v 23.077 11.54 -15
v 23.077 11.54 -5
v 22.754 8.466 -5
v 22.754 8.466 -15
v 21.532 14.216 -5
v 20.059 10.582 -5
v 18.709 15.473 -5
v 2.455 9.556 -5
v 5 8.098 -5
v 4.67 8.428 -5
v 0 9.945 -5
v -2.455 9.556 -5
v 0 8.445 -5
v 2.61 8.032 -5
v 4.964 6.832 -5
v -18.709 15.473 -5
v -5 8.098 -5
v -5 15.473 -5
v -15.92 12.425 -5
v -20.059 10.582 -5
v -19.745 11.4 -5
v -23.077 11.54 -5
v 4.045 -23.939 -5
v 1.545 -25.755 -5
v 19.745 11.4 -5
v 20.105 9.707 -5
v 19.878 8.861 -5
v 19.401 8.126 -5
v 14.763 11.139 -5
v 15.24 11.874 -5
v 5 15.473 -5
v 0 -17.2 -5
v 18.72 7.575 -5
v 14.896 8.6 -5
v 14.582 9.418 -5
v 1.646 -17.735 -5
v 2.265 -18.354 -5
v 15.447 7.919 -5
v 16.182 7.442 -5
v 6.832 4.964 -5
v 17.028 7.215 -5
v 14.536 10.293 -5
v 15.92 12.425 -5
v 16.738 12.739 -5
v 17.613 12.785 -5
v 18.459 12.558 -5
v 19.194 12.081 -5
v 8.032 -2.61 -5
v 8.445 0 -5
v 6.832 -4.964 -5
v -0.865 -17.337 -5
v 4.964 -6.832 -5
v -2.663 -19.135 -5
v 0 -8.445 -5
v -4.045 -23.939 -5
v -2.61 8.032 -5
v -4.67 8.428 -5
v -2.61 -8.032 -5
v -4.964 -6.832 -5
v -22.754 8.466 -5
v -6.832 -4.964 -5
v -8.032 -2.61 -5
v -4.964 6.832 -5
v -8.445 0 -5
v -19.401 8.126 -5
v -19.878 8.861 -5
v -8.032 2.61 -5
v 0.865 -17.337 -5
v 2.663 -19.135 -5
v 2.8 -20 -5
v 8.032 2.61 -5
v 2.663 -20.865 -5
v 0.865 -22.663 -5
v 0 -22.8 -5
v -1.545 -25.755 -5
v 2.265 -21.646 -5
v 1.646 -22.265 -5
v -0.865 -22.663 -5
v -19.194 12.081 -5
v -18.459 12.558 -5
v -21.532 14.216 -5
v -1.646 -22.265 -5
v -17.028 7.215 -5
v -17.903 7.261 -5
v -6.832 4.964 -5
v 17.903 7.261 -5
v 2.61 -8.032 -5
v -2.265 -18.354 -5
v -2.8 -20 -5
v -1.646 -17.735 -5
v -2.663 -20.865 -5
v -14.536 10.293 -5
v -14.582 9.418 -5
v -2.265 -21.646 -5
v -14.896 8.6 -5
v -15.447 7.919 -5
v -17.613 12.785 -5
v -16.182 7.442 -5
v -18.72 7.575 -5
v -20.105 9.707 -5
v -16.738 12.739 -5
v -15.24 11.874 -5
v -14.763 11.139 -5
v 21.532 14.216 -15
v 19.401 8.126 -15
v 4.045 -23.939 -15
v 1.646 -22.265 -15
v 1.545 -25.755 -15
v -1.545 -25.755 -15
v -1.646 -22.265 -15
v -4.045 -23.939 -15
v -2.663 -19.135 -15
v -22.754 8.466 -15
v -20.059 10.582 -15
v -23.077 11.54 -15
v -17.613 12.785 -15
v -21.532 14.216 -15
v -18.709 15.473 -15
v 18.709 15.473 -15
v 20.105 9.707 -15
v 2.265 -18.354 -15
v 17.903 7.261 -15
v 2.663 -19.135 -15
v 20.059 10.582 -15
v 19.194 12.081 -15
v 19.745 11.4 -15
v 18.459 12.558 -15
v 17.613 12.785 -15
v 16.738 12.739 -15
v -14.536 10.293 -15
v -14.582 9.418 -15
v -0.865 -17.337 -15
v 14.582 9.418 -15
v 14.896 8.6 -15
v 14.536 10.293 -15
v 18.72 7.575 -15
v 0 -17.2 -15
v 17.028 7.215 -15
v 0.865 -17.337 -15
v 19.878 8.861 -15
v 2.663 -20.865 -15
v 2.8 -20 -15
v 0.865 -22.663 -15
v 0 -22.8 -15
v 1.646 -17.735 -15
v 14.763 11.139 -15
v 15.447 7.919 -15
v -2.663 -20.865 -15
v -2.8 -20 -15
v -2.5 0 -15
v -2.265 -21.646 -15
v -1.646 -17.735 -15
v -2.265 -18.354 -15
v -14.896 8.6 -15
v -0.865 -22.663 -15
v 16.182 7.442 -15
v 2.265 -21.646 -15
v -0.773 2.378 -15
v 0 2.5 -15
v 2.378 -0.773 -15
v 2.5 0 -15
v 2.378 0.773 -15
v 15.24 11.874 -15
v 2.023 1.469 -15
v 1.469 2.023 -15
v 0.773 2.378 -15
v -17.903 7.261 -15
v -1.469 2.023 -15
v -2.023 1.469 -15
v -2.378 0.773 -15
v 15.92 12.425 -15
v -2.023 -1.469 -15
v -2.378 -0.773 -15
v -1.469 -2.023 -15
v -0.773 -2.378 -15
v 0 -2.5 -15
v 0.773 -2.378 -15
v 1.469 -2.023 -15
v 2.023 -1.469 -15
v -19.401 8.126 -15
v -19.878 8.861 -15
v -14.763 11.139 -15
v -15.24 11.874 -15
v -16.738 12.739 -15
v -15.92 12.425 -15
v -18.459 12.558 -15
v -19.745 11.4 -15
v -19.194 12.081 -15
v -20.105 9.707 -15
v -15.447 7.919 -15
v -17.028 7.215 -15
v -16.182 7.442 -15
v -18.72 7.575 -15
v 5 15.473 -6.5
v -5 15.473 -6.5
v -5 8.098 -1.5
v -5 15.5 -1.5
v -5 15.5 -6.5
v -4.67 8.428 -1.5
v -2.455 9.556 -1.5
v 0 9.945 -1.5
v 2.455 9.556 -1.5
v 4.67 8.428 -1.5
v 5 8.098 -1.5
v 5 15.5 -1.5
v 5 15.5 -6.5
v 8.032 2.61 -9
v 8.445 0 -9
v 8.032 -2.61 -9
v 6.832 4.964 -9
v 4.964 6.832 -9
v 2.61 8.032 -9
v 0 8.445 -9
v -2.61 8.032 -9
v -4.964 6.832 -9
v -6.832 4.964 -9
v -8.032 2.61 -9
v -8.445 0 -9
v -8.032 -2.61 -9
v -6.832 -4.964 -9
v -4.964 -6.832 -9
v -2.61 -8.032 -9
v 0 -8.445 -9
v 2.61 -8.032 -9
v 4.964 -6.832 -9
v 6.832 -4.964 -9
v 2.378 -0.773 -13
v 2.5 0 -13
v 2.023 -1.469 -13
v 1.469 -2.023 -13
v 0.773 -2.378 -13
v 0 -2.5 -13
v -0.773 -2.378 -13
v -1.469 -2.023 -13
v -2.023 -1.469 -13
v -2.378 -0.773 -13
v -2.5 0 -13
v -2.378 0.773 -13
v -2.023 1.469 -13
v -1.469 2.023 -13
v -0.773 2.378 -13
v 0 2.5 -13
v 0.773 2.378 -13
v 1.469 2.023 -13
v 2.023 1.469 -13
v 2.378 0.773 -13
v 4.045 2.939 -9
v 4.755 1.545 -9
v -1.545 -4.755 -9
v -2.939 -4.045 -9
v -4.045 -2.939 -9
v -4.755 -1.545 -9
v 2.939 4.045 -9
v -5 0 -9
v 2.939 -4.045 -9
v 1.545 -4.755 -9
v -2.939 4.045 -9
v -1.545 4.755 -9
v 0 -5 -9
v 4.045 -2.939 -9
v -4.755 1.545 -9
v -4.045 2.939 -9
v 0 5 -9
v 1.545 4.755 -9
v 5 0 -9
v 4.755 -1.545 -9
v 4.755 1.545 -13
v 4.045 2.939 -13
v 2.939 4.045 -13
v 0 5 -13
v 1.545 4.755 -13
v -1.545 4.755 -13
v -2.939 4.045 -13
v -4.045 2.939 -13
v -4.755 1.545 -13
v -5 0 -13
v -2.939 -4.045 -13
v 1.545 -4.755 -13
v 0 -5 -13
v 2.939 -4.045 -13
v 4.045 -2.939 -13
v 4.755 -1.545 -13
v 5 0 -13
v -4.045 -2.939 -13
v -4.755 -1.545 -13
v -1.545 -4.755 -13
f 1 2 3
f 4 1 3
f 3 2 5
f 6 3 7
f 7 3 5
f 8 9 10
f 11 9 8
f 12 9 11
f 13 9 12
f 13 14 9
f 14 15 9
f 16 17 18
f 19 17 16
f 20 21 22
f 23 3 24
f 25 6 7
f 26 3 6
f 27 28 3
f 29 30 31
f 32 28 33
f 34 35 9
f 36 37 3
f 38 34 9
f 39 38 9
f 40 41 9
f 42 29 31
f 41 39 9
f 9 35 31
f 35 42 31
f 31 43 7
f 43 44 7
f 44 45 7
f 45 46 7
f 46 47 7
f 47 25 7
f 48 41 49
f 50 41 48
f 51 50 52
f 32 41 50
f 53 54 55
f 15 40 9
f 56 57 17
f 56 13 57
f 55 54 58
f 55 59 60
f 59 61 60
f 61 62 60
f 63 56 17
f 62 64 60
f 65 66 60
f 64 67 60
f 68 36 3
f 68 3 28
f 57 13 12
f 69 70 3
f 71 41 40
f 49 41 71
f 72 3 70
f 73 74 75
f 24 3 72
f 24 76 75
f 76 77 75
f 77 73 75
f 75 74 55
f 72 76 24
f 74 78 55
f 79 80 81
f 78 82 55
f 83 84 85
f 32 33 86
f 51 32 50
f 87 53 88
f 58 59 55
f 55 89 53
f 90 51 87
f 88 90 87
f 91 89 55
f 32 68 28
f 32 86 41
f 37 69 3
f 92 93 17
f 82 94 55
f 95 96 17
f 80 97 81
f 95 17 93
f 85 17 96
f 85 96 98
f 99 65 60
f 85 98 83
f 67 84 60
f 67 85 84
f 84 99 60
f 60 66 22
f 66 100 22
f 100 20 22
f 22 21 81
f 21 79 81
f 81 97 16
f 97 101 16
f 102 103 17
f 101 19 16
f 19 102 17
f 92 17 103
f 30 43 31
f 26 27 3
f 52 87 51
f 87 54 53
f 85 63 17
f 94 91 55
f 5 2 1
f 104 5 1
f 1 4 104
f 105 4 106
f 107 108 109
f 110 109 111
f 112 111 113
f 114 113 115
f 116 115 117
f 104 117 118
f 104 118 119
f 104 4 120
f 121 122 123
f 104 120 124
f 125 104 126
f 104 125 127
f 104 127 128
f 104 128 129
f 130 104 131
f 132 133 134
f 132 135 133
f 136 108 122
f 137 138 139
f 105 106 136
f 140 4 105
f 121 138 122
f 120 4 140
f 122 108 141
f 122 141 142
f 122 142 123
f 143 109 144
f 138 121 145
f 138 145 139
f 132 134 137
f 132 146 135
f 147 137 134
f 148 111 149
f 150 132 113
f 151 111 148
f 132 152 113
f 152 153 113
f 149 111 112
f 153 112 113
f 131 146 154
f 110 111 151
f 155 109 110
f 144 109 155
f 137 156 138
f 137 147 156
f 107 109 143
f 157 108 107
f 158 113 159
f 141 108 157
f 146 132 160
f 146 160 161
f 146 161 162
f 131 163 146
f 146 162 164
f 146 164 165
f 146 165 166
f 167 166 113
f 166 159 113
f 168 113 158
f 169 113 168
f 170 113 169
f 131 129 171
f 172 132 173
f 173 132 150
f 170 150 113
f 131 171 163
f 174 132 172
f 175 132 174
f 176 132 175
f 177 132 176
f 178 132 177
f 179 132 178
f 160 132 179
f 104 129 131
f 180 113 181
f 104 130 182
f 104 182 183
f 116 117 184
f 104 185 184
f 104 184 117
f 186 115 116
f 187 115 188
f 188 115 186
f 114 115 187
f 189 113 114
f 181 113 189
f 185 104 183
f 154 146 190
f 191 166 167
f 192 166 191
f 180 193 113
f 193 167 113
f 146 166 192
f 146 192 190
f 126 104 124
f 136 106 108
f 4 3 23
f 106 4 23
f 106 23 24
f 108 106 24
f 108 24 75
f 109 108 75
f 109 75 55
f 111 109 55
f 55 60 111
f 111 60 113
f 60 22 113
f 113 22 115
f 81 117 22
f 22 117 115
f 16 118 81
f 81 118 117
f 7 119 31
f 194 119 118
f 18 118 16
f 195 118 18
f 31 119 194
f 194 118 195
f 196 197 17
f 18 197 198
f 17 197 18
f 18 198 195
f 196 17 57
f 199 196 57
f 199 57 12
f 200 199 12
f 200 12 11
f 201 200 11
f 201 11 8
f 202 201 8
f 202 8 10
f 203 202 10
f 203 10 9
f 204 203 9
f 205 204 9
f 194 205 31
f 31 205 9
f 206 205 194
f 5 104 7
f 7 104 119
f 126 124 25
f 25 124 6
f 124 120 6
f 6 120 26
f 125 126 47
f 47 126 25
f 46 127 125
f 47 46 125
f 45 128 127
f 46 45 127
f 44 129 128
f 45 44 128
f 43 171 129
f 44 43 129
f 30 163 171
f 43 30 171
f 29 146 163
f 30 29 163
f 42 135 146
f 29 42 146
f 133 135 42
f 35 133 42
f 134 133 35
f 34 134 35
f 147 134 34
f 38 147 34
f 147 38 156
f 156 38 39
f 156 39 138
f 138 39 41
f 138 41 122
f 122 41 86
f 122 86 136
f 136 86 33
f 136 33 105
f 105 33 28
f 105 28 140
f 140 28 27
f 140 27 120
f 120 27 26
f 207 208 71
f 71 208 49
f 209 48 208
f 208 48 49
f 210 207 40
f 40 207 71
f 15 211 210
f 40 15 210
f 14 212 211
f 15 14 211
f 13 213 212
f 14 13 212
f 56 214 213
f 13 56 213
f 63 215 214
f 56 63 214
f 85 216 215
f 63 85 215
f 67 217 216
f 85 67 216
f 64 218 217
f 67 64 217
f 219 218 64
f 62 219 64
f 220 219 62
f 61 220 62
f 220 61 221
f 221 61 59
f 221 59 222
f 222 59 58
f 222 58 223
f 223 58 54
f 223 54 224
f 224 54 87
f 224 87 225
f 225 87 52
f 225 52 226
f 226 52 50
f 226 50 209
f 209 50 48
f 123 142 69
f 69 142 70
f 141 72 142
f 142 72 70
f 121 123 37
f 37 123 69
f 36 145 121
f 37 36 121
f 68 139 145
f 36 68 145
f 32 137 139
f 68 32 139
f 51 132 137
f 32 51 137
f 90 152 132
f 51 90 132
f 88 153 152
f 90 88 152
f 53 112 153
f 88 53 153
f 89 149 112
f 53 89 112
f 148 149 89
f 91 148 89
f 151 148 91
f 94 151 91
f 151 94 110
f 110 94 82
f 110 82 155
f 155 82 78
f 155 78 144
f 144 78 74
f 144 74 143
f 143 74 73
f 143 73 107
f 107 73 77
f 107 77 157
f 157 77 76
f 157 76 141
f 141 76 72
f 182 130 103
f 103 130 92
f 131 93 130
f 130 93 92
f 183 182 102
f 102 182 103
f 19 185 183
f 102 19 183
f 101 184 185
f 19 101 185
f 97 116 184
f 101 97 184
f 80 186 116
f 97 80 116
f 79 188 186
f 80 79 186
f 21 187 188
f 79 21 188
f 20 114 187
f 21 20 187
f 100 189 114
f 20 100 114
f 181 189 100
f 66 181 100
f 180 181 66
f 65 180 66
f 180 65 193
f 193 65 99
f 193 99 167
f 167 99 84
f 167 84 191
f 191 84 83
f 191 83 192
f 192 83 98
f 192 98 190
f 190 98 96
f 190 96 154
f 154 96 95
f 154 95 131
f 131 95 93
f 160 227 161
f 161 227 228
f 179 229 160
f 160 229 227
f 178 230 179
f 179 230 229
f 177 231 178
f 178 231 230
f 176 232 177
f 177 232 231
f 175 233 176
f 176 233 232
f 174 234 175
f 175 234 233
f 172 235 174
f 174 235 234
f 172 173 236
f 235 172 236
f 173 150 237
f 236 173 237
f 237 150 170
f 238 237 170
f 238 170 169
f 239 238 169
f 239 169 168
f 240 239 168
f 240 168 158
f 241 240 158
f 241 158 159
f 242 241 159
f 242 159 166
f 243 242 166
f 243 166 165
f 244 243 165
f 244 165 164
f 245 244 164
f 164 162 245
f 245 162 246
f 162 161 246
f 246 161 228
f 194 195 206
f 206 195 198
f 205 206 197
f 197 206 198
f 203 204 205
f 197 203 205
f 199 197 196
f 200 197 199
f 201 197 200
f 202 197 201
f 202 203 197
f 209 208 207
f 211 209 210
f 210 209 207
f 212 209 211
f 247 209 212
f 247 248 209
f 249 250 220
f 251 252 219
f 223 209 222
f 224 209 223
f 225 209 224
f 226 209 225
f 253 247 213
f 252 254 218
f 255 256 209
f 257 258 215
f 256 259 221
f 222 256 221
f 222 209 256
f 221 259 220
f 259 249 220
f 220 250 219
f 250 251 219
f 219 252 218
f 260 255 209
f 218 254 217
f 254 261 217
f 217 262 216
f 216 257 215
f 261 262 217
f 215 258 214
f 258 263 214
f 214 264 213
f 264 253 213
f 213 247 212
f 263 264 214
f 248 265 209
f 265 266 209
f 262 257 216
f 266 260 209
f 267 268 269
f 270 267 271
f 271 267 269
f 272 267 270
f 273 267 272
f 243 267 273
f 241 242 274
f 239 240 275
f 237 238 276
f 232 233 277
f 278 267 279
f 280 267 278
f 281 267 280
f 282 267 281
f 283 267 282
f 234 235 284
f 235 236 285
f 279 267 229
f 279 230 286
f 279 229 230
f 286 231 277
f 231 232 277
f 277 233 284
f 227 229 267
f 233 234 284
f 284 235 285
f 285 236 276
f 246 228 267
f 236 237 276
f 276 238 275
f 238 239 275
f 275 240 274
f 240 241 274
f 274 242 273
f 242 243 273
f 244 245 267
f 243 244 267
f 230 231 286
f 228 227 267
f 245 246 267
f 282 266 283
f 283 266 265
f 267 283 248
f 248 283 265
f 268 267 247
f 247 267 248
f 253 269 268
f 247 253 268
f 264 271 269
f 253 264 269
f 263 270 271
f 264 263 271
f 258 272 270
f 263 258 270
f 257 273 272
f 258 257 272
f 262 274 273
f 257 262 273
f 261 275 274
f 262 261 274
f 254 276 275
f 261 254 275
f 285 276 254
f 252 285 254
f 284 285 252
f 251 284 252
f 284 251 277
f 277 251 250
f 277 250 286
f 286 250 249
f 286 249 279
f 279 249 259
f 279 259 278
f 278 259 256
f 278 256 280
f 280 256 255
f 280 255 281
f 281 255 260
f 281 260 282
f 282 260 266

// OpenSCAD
// file: jaws.scad
include<configuration.scad>;

thickness = 6;
gap = 10;

h = (thickness+gap)/2;
r = h/2 / cos(30);




module jaws() {
  difference() {
    union() {
      intersection () {
        rotate([90, 0, 0]) cylinder(r=5, h=gap+thickness, center=true, $fn=24);
        translate([-4, 0, 0]) cube([10, gap+thickness, h], center=true);
      }
      intersection() {
        translate([10, 0, 0]) cube([26, gap+thickness, h], center=true);
        translate([10, 0, 0]) rotate([0, 90, 0]) rotate([0, 0, 30]) cylinder(r1=gap, r2=r, h=26, center=true, $fn=6);
      }
	
    }
	
	//Makin it look nice
    translate([-1.5, 0, 0]) cube([10, gap, 10], center=true);
    translate([3.5, 0, 0]) rotate([0, 0, 30]) cylinder(r=gap/2, h=10, center=true, $fn=6);
    translate([4, 0, 4]) rotate([0, 45, 0]) rotate([0, 0, 30]) cylinder(r=4.2, h=8, center=true, $fn=6);
    translate([4, 0, -4]) rotate([0, -45, 0]) rotate([0, 0, 30]) cylinder(r=4.2, h=8, center=true, $fn=6);

	//M3 Holes
    rotate([90, 0, 0]) cylinder(r=M3h/2, h=40, center=true, $fn=12);



  }
}

module jaws_full(){
translate([-50, 0, 0]) jaws();
translate([50,0,0]) mirror([1,0,0]) jaws();
translate([0, 0, 0]) rotate([90, 0, 90]) cylinder(r=r, h=80, center=true, $fn=6);
}
jaws_full();
// file: idler_end.scad
include<configuration.scad>;
use<modules.scad>;
use<platform.scad>;


//VARIABLE
side_length = pole_center*0.866025;
side_width = 20;
idler_height = 16;

switch_hole_sep = 9.5;



//Testers
$fn=50;
draw_all = 0; //




//Modules
module nema17(){

	cube([42,47.5,42],center=true);
	translate([0,47.5/2+25/2,0]) rotate([90,0,0]) cylinder(r=2.5,h=25,center=true);
	translate([0,47.5/2+25/2+4,0]) rotate([90,0,0]) cylinder(r=10,h=25,center=true); //The pulley
}


module m8poles(){

	for(i=[-1,1,1]){
		translate([i*rod_sep,0,0]) cylinder(r=M8/2,h=rod_height,center=true);

	}
}

module motorend(){
	union(){
		difference(){
			union(){ //Getting the basic shape
				for(i=[-1:2:1]){
					rotate([0,0,i*30]) translate([i*(30-side_width/2),-side_length/2-19,0]) side_mount(i);
					translate([i*rod_sep,0,0]) rotate([0,0,0]) cylinder(r=M8/2+2.5,h=idler_height,center=true);
					translate([i*(rod_sep-4),-8,0]) rotate([0,0,0]) cylinder(r=8,h=idler_height,center=true);
					translate([0,-15,0]) cube([50,6,idler_height],center=true);


					translate([-18,-28,0]) cube([4,20,idler_height],center=true);
					translate([-28,-28,-5.5]) cube([20,20,5],center=true);
				}
			}

		translate([0,0,rod_height/2+42/2-21]) m8poles();
		rotate([90,0,0]) cylinder(r=M8h/2,h=50,center=true);
		//%rotate([90,0,0]) cylinder(r=17.3/2,h=50,center=true);

		


		for(i=[-1:2:1]){
			translate([i*(rod_sep-13),-5,0]) rotate([0,0,0]) cylinder(r=8,h=idler_height+1,center=true);
			translate([i*40,-36,0]) rotate([0,0,0]) cylinder(r=M3/2,h=idler_height+1,center=true);

			translate([-15,i*(switch_hole_sep/2)-30,3]) rotate([0,90,0]) cylinder(r=M3h/2,h=20,center=true);
		}
		

		}
		//difference(){
			
			//Idler Bar
		//	translate([0,-15,0]) cube([50,6,idler_height],center=true);
	
		//	rotate([90,0,0]) cylinder(r=M8h/2,h=50,center=true);
		//}
		

	}
	//%translate([0,0,rod_height/2+42/2]) m8poles();

}


module motor_holes(){
	for(i=[-1,1,1]){
		translate([0,0,i*31/2]) for(i=[-1,1,1]){
			translate([i*32/2,0,0]) rotate([90,0,0]) cylinder(r=M3h/2,h=20,center=true);
			translate([i*32/2,0,0]) rotate([90,0,0]) cylinder(r=M3h/2,h=10,center=true);
		}
	}
}

module side_mount(a){

	difference(){
		cube([side_width,side_length,idler_height],center=true);

		translate([-5*a,-2,5]) cube([side_width,side_length-16,idler_height],center=true);

		for(i=[-1,1,1]){
			translate([0,-30,2]) rotate([90,0,0]) cylinder(r=M4h/2,h= 40,center=true);

			translate([0,0,2]) rotate([0,90,0]) cylinder(r=4,h= 40,center=true,$fn=4);


			//translate([0,-23,idler_height/2]) cylinder(r=M3/2,h= 10,center=true);
			//translate([-2.5,-26.5,idler_height/2-7]) cube([5,11,3]);

		}
	}

}


 
/************************DRAWING************************/

if (draw_all == 1){

	for(i=[0:120:270]){

		rotate([0,0,i]) translate([0,80.6,0]) motorend();
		//%translate([0,0,100]) cylinder(r=50,h=100,center=true);

	}
}
if(draw_all == 0){
	motorend();
}



//side_mount();


//motor_holes();
//rotate([0,0,-30]) translate([0,0,100]) platform();
// file: modules.scad
module hollow_cylinder(r1,r2,h,cent,fn){
	difference(){
		cylinder(r=r1,h=h,center=cent,$fn=fn);
		cylinder(r=r2,h=h+.1,center=cent,$fn=fn);
	}
}
// file: carriage.scad
include<configuration.scad>;
use<modules.scad>;
use<idler_end.scad>;
use<jaws.scad>;

//VARIABLES

lm8uu_r = 15.5/2;  //Gotta check this
lm8uu_h = 24.12;
height = 15;
thick = 5;



ten_pos = 5.4;  //Position of tensioner in x-axis
pos_tem = 2; //temporary variable



cubex = 6;
cubey = 15;
cubez = 10;
cubie = [cubex,cubey,cubez];

arm_sep = 21;
swivel_sep = 13+cubex;



//MODULES
module m8poles(){
	for(i=[-1:2:1]){
		translate([i*rod_sep,0,0]) cylinder(r=M8/2,h=rod_height,center=true);
	}
}
module lm8uu(h){
	for(i=[-1:2:1]){
		translate([i*rod_sep,0,0]) cylinder(r=lm8uu_r,h=h,center=true);

	}
}




module carriage(){
	difference(){
		union(){
			
			//The main section
			translate([0,5,-lm8uu_h/2+height/2]) cube([rod_sep*2,thick,height],center=true);


			//Tensioner Block
			translate([ten_pos,0,-lm8uu_h/2+height/2+1.5]) cube([10,5,height+3],center=true);

			//Connectors
			translate([0,cubey,-lm8uu_h/2+height/2-10/4]) connector(1);

			//Endstop button?
			//translate([arm_sep-swivel_sep/2,cubey*1.7,-lm8uu_h/2+height/2-10/4]) difference(){
			///	cube([cubex,cubey*.9,cubez],center=true);
			//	translate([0,-cubey/5-1,0]) rotate([0,90,0]) cylinder(r=cubez/2,h=cubex+1,center=true);
			//}
			

			for(i=[-1:2:1]){
				
				//The slots for the lm8uu
				translate([i*rod_sep,0,0]) difference(){
					cylinder(r=lm8uu_r+2,h=lm8uu_h,center=true);
					translate([0,-5,0]) cube([lm8uu_r*2+8,10,lm8uu_h+1],center=true);
				}

				//In order to get the material for the zip-tie holes
				translate([i*(rod_sep-9),5,4]) rotate([90,0,0]) cylinder(r=8,h=thick,center=true);
			}
		}

	
		//LM8UU Slot fit
		lm8uu(lm8uu_h+1);

		//Cutting away for the rounded effect
		for(i=[-1:2:1]){
			translate([i*(rod_sep-20),5,5/2+9]) rotate([90,0,0]) cylinder(r=8,h=thick+.1,center=true);
		}

		//Holes for zip-ties
		for(i=[-1:2:1],d=[-1:2:1]){
			translate([i*rod_sep,0,d*(24.12/2-4)]) rings();
		}

		//Tensioner Holes
		translate([ten_pos,0,-lm8uu_h/2+height/2]){
			translate([0,0,8]) cube([2,2,6],center=true); //spectra hole

			translate([0,-1,pos_tem]) rotate([90,0,0]) cylinder(r=M3washer/2, h=4, center=true);
			translate([0,-1,pos_tem]) rotate([90,0,0]) cylinder(r=M3h/2, h=20, center=true);
			translate([0,7,pos_tem]) rotate([90,90,0]) cylinder(r=M3nut/2, h=4, center=true, $fn=6);
		
			translate([0,0,-5]) cube([2,20,2],center=true); //top spectra hole
		}
		
		//endstop button holes
		translate([arm_sep-swivel_sep/2,cubey+2,-5]) cylinder(r=3.4/2,h=20,center=true);


	}
}

module rings(){
	difference(){
		cylinder(r=lm8uu_r+4,h=3,center=true);
		cylinder(r=lm8uu_r+2,h=4,center=true);
	}
}



module connector(sup){
	difference(){
		union(){
				
			//The initial blocks
			for(i=[-1:2:1],d=[-1:2:1]){
				translate([d*swivel_sep/2+i*arm_sep,0,0]){
					cube(cubie,center=true);
					translate([0,cubey/2,0]) rotate([0,90,0]) cylinder(r=cubez/2,h=cubex,center=true);

					if(sup == 1){
					//get that extra support
						difference(){
							translate([0,-cubey/2,cubez/2]) rotate([0,90,0]) cylinder(r=cubez/2,h=cubex,center=true);
							translate([0,-cubey/9+1,cubez+1]) rotate([0,90,0]) cylinder(r=cubez/1.6,h=cubex+1,center=true);
						}
					}
				}
			}
		}
		
		//M3 holes
		translate([0,cubey/2]) rotate([0,90,0]) cylinder(r=M3h/2,h=100,center=true);
		
		//Nut holes
		for(i=[-1:2:1],d=[-1:2:1]){

			translate([arm_sep*i+swivel_sep/2*d-2*d,cubey/2,0]) rotate([90,0,90]) cylinder(r=M3nut/2,h=3,center=true,$fn=6);
		}
		
	}	
}





//DRAW
carriage();
%translate([20,18,-5]) rotate([90,90,90]) jaws();

//%translate([0,0,-100]) rotate([0,0,180]) idler_end();
%m8poles();
%lm8uu(lm8uu_h);
// file: hotend_clamp.scad
include<configuration.scad>;

$fn=60;
clamp_h = 2.31;
ubis_gap = 11.8;


module clamp(){
	difference(){
		union(){
			for(i=[0:120:240]){
				hull(){
					rotate([0,0,i]) translate([0,-35,0]) cylinder(r=6,h=clamp_h,center=true);
					cylinder(r=6,h=clamp_h,center=true);
				}
			}
			cylinder(r=ubis_gap/2+5,h=clamp_h,center=true);
		}


		for(i=[0:120:240]){
			rotate([0,0,i]) translate([32,0,0]) cylinder(r=M4/2,h=clamp_h+1,center=true);
		}
		
		cylinder(r=ubis_gap/2,h=clamp_h+1,center=true);
		hull(){
			cylinder(r=ubis_gap/2-1,h=clamp_h+1,center=true);
			translate([-30,0,0]) cylinder(r=ubis_gap/2-1,h=clamp_h+1,center=true);
		}

	}
}



module Head_Mount(){

	difference(){
		union(){
			hull(){
				for(a = [0:120:240]){
					rotate([0,0,a]) translate([0,21,0]) cylinder( r=5, h=clamp_h,center=true);
				}
			}
		}

		//Bolt holes
		for(a = [0:120:240]){
			rotate([0,0,a]) translate([0,18,0]) cylinder( r=M4/2, h=clamp_h+1,center=true);
		}
	
		//Hotend hole w/ pathway thing
		cylinder(r=ubis_gap/2,h=clamp_h+1,center=true);
		hull(){
			cylinder(r=ubis_gap/2,h=clamp_h+1,center=true);
			translate([0,-50,0]) cube([2*ubis_gap,1,clamp_h+1],center=true);

		}

	}
}




//DRAWING

//clamp();
Head_Mount();
// file: platform.scad
include<configuration.scad>;
use<hotend_clamp.scad>;
use<carriage.scad>;
$fn=20;

plat_h = 10;
arm_sep = 21;


module ubis(){
	ubis_l = 70-2.31-4.3;

	translate([0,0,ubis_l+5/2+2.31+4.3/2]) cylinder(r=15.89/2,h=4.3,center=true);
	translate([0,0,ubis_l+5/2+2.31/2]) cylinder(r=11.6/2,h=2.31,center=true);
	translate([0,0,ubis_l/2+5/2]) cylinder(r=15.89/2,h=ubis_l,center=true);
	cylinder(r2=15.89/2,r1=3,h=5,center=true);
}




module platform(){

	difference(){
		union(){
			hull() for(i=[0:120:240]){
				rotate([0,0,i]) translate([0,-15,0]) cube([10,arm_sep+20,plat_h],center=true);
			}
			for(i=[0:120:240]){
				rotate([0,0,i]) translate([0,25,0]) connector();
			}
		}
	
		translate([0,0,10]) cube([100,100,10],center=true);
		
		
		hull() for(i=[0:120:240]){
			rotate([0,0,i]) translate([0,-18,0]) cylinder(r=5,h=plat_h+1,center=true);
		}
		for(i=[0:120:240]){
			rotate([0,0,i]) translate([0,18,0]) cylinder(r=M4/2,h=plat_h+1,center=true);
			rotate([0,0,i]) translate([0,-30,0]) cylinder(r=M4/2,h=plat_h+1,center=true);

			
		}	
		
		
	}
	

}





/********DRAWING********/

%translate([0,0,-20]) ubis();
platform();

%translate([0,0,20]) rotate([0,0,0]) Head_Mount();
// file: configuration.scad
//Configuration File
//Lets you adjust pretty much everything
//
//Makes it all super paramatric
//


//Configuration Block
$fn = 20;
module configBlock(){
	difference(){
		cube([15,30,10],center=true);

		union(){  //Vertical Holes
			translate([0,10,5]) rotate([0,0,0]) cylinder(r=M3/2,h=10,center=true);
			translate([0,3,5]) rotate([0,0,0]) cylinder(r=M4/2,h=10,center=true);
			translate([0,-8,5]) rotate([0,0,0]) cylinder(r=M8/2,h=10,center=true);
		}

		union(){  //Horizontal Holes
			translate([-8,10,0]) rotate([0,90,0]) cylinder(r=M3h/2,h=10,center=true);		
			translate([-8,3,0]) rotate([0,90,0]) cylinder(r=M4h/2,h=10,center=true);
			translate([-10,-6,0]) rotate([0,90,0]) cylinder(r=M3nut/2,h=10,center=true,$fn=6);

			translate([10,3,0]) rotate([0,90,0]) cylinder(r=M3washer/2,h=10,center=true);


			//translate([0,-8,0]) rotate([0,90,0]) cylinder(r=M8/2,h=10,center=true);
		}
	}
}

//configBlock();

//Bolts
M3 = 4;
M4 = 5;
M8 = 9;

M3h = 3.6;  //Horizontal versions
M4h = 5;  //Horizontal versions
M8h = 8; //Horizontal versions

//Nuts & Washers

M3washer = 7.4;
M3nut = 7.1;

//Size of other parts
rod = 8;  //Dimension of smooth rod
lm8uu = 16;

/*************************
 Printer Design files now
**************************/

//basic
arm_length = 100 ; //Length of the arms based on a planned 100x100 print size
pole_center = 60 ; //The pole distance from the center of the print
rod_sep = 25 + rod/2; // pole to pole seperation for one set. Includes rod length
rod_height = 260;

//motor end effector


//Universal joints
//holewidth = 6;
//arm_sep = 40;



//Hotend
// main file
include<configuration.scad>;
use<platform.scad>;
use<hotend_clamp.scad>;

height = 10;

//MODULES
module bowden(){
	difference(){
		union(){
			hull() for(i=[0:120:240]){
				rotate([0,0,i]) translate([0,-21,0]) cylinder(r=5,h=height,center=true,$fn=10);
			}
			translate([0,8,-6]) difference(){
				cube([10,15,5],center=true);
				translate([0,-6,0]) cylinder(r=15.89/2,h=10,center=true);
			}
		}
		for(i=[0:120:240]){
			rotate([0,0,i]) translate([0,-20,0]) cylinder(r=M4/2+.3,h=height+4, center=true);
		}
		cylinder(r=M4/2,h=50,center=true);

		translate([0,0,1]) cylinder(r=10/2,h=4,center=true);

		translate([0,0,-4]) cylinder(r=15.89/2+.5,h=6,center=true);
	}
}





//DRAWING
/*
%translate([0,0,-70])ubis();
%translate([0,0,-3]) Head_Mount();
#cylinder(r=4/2,h=40,center=true);
*/
rotate([0,180,0]) translate([0,0,10]) bowden();
